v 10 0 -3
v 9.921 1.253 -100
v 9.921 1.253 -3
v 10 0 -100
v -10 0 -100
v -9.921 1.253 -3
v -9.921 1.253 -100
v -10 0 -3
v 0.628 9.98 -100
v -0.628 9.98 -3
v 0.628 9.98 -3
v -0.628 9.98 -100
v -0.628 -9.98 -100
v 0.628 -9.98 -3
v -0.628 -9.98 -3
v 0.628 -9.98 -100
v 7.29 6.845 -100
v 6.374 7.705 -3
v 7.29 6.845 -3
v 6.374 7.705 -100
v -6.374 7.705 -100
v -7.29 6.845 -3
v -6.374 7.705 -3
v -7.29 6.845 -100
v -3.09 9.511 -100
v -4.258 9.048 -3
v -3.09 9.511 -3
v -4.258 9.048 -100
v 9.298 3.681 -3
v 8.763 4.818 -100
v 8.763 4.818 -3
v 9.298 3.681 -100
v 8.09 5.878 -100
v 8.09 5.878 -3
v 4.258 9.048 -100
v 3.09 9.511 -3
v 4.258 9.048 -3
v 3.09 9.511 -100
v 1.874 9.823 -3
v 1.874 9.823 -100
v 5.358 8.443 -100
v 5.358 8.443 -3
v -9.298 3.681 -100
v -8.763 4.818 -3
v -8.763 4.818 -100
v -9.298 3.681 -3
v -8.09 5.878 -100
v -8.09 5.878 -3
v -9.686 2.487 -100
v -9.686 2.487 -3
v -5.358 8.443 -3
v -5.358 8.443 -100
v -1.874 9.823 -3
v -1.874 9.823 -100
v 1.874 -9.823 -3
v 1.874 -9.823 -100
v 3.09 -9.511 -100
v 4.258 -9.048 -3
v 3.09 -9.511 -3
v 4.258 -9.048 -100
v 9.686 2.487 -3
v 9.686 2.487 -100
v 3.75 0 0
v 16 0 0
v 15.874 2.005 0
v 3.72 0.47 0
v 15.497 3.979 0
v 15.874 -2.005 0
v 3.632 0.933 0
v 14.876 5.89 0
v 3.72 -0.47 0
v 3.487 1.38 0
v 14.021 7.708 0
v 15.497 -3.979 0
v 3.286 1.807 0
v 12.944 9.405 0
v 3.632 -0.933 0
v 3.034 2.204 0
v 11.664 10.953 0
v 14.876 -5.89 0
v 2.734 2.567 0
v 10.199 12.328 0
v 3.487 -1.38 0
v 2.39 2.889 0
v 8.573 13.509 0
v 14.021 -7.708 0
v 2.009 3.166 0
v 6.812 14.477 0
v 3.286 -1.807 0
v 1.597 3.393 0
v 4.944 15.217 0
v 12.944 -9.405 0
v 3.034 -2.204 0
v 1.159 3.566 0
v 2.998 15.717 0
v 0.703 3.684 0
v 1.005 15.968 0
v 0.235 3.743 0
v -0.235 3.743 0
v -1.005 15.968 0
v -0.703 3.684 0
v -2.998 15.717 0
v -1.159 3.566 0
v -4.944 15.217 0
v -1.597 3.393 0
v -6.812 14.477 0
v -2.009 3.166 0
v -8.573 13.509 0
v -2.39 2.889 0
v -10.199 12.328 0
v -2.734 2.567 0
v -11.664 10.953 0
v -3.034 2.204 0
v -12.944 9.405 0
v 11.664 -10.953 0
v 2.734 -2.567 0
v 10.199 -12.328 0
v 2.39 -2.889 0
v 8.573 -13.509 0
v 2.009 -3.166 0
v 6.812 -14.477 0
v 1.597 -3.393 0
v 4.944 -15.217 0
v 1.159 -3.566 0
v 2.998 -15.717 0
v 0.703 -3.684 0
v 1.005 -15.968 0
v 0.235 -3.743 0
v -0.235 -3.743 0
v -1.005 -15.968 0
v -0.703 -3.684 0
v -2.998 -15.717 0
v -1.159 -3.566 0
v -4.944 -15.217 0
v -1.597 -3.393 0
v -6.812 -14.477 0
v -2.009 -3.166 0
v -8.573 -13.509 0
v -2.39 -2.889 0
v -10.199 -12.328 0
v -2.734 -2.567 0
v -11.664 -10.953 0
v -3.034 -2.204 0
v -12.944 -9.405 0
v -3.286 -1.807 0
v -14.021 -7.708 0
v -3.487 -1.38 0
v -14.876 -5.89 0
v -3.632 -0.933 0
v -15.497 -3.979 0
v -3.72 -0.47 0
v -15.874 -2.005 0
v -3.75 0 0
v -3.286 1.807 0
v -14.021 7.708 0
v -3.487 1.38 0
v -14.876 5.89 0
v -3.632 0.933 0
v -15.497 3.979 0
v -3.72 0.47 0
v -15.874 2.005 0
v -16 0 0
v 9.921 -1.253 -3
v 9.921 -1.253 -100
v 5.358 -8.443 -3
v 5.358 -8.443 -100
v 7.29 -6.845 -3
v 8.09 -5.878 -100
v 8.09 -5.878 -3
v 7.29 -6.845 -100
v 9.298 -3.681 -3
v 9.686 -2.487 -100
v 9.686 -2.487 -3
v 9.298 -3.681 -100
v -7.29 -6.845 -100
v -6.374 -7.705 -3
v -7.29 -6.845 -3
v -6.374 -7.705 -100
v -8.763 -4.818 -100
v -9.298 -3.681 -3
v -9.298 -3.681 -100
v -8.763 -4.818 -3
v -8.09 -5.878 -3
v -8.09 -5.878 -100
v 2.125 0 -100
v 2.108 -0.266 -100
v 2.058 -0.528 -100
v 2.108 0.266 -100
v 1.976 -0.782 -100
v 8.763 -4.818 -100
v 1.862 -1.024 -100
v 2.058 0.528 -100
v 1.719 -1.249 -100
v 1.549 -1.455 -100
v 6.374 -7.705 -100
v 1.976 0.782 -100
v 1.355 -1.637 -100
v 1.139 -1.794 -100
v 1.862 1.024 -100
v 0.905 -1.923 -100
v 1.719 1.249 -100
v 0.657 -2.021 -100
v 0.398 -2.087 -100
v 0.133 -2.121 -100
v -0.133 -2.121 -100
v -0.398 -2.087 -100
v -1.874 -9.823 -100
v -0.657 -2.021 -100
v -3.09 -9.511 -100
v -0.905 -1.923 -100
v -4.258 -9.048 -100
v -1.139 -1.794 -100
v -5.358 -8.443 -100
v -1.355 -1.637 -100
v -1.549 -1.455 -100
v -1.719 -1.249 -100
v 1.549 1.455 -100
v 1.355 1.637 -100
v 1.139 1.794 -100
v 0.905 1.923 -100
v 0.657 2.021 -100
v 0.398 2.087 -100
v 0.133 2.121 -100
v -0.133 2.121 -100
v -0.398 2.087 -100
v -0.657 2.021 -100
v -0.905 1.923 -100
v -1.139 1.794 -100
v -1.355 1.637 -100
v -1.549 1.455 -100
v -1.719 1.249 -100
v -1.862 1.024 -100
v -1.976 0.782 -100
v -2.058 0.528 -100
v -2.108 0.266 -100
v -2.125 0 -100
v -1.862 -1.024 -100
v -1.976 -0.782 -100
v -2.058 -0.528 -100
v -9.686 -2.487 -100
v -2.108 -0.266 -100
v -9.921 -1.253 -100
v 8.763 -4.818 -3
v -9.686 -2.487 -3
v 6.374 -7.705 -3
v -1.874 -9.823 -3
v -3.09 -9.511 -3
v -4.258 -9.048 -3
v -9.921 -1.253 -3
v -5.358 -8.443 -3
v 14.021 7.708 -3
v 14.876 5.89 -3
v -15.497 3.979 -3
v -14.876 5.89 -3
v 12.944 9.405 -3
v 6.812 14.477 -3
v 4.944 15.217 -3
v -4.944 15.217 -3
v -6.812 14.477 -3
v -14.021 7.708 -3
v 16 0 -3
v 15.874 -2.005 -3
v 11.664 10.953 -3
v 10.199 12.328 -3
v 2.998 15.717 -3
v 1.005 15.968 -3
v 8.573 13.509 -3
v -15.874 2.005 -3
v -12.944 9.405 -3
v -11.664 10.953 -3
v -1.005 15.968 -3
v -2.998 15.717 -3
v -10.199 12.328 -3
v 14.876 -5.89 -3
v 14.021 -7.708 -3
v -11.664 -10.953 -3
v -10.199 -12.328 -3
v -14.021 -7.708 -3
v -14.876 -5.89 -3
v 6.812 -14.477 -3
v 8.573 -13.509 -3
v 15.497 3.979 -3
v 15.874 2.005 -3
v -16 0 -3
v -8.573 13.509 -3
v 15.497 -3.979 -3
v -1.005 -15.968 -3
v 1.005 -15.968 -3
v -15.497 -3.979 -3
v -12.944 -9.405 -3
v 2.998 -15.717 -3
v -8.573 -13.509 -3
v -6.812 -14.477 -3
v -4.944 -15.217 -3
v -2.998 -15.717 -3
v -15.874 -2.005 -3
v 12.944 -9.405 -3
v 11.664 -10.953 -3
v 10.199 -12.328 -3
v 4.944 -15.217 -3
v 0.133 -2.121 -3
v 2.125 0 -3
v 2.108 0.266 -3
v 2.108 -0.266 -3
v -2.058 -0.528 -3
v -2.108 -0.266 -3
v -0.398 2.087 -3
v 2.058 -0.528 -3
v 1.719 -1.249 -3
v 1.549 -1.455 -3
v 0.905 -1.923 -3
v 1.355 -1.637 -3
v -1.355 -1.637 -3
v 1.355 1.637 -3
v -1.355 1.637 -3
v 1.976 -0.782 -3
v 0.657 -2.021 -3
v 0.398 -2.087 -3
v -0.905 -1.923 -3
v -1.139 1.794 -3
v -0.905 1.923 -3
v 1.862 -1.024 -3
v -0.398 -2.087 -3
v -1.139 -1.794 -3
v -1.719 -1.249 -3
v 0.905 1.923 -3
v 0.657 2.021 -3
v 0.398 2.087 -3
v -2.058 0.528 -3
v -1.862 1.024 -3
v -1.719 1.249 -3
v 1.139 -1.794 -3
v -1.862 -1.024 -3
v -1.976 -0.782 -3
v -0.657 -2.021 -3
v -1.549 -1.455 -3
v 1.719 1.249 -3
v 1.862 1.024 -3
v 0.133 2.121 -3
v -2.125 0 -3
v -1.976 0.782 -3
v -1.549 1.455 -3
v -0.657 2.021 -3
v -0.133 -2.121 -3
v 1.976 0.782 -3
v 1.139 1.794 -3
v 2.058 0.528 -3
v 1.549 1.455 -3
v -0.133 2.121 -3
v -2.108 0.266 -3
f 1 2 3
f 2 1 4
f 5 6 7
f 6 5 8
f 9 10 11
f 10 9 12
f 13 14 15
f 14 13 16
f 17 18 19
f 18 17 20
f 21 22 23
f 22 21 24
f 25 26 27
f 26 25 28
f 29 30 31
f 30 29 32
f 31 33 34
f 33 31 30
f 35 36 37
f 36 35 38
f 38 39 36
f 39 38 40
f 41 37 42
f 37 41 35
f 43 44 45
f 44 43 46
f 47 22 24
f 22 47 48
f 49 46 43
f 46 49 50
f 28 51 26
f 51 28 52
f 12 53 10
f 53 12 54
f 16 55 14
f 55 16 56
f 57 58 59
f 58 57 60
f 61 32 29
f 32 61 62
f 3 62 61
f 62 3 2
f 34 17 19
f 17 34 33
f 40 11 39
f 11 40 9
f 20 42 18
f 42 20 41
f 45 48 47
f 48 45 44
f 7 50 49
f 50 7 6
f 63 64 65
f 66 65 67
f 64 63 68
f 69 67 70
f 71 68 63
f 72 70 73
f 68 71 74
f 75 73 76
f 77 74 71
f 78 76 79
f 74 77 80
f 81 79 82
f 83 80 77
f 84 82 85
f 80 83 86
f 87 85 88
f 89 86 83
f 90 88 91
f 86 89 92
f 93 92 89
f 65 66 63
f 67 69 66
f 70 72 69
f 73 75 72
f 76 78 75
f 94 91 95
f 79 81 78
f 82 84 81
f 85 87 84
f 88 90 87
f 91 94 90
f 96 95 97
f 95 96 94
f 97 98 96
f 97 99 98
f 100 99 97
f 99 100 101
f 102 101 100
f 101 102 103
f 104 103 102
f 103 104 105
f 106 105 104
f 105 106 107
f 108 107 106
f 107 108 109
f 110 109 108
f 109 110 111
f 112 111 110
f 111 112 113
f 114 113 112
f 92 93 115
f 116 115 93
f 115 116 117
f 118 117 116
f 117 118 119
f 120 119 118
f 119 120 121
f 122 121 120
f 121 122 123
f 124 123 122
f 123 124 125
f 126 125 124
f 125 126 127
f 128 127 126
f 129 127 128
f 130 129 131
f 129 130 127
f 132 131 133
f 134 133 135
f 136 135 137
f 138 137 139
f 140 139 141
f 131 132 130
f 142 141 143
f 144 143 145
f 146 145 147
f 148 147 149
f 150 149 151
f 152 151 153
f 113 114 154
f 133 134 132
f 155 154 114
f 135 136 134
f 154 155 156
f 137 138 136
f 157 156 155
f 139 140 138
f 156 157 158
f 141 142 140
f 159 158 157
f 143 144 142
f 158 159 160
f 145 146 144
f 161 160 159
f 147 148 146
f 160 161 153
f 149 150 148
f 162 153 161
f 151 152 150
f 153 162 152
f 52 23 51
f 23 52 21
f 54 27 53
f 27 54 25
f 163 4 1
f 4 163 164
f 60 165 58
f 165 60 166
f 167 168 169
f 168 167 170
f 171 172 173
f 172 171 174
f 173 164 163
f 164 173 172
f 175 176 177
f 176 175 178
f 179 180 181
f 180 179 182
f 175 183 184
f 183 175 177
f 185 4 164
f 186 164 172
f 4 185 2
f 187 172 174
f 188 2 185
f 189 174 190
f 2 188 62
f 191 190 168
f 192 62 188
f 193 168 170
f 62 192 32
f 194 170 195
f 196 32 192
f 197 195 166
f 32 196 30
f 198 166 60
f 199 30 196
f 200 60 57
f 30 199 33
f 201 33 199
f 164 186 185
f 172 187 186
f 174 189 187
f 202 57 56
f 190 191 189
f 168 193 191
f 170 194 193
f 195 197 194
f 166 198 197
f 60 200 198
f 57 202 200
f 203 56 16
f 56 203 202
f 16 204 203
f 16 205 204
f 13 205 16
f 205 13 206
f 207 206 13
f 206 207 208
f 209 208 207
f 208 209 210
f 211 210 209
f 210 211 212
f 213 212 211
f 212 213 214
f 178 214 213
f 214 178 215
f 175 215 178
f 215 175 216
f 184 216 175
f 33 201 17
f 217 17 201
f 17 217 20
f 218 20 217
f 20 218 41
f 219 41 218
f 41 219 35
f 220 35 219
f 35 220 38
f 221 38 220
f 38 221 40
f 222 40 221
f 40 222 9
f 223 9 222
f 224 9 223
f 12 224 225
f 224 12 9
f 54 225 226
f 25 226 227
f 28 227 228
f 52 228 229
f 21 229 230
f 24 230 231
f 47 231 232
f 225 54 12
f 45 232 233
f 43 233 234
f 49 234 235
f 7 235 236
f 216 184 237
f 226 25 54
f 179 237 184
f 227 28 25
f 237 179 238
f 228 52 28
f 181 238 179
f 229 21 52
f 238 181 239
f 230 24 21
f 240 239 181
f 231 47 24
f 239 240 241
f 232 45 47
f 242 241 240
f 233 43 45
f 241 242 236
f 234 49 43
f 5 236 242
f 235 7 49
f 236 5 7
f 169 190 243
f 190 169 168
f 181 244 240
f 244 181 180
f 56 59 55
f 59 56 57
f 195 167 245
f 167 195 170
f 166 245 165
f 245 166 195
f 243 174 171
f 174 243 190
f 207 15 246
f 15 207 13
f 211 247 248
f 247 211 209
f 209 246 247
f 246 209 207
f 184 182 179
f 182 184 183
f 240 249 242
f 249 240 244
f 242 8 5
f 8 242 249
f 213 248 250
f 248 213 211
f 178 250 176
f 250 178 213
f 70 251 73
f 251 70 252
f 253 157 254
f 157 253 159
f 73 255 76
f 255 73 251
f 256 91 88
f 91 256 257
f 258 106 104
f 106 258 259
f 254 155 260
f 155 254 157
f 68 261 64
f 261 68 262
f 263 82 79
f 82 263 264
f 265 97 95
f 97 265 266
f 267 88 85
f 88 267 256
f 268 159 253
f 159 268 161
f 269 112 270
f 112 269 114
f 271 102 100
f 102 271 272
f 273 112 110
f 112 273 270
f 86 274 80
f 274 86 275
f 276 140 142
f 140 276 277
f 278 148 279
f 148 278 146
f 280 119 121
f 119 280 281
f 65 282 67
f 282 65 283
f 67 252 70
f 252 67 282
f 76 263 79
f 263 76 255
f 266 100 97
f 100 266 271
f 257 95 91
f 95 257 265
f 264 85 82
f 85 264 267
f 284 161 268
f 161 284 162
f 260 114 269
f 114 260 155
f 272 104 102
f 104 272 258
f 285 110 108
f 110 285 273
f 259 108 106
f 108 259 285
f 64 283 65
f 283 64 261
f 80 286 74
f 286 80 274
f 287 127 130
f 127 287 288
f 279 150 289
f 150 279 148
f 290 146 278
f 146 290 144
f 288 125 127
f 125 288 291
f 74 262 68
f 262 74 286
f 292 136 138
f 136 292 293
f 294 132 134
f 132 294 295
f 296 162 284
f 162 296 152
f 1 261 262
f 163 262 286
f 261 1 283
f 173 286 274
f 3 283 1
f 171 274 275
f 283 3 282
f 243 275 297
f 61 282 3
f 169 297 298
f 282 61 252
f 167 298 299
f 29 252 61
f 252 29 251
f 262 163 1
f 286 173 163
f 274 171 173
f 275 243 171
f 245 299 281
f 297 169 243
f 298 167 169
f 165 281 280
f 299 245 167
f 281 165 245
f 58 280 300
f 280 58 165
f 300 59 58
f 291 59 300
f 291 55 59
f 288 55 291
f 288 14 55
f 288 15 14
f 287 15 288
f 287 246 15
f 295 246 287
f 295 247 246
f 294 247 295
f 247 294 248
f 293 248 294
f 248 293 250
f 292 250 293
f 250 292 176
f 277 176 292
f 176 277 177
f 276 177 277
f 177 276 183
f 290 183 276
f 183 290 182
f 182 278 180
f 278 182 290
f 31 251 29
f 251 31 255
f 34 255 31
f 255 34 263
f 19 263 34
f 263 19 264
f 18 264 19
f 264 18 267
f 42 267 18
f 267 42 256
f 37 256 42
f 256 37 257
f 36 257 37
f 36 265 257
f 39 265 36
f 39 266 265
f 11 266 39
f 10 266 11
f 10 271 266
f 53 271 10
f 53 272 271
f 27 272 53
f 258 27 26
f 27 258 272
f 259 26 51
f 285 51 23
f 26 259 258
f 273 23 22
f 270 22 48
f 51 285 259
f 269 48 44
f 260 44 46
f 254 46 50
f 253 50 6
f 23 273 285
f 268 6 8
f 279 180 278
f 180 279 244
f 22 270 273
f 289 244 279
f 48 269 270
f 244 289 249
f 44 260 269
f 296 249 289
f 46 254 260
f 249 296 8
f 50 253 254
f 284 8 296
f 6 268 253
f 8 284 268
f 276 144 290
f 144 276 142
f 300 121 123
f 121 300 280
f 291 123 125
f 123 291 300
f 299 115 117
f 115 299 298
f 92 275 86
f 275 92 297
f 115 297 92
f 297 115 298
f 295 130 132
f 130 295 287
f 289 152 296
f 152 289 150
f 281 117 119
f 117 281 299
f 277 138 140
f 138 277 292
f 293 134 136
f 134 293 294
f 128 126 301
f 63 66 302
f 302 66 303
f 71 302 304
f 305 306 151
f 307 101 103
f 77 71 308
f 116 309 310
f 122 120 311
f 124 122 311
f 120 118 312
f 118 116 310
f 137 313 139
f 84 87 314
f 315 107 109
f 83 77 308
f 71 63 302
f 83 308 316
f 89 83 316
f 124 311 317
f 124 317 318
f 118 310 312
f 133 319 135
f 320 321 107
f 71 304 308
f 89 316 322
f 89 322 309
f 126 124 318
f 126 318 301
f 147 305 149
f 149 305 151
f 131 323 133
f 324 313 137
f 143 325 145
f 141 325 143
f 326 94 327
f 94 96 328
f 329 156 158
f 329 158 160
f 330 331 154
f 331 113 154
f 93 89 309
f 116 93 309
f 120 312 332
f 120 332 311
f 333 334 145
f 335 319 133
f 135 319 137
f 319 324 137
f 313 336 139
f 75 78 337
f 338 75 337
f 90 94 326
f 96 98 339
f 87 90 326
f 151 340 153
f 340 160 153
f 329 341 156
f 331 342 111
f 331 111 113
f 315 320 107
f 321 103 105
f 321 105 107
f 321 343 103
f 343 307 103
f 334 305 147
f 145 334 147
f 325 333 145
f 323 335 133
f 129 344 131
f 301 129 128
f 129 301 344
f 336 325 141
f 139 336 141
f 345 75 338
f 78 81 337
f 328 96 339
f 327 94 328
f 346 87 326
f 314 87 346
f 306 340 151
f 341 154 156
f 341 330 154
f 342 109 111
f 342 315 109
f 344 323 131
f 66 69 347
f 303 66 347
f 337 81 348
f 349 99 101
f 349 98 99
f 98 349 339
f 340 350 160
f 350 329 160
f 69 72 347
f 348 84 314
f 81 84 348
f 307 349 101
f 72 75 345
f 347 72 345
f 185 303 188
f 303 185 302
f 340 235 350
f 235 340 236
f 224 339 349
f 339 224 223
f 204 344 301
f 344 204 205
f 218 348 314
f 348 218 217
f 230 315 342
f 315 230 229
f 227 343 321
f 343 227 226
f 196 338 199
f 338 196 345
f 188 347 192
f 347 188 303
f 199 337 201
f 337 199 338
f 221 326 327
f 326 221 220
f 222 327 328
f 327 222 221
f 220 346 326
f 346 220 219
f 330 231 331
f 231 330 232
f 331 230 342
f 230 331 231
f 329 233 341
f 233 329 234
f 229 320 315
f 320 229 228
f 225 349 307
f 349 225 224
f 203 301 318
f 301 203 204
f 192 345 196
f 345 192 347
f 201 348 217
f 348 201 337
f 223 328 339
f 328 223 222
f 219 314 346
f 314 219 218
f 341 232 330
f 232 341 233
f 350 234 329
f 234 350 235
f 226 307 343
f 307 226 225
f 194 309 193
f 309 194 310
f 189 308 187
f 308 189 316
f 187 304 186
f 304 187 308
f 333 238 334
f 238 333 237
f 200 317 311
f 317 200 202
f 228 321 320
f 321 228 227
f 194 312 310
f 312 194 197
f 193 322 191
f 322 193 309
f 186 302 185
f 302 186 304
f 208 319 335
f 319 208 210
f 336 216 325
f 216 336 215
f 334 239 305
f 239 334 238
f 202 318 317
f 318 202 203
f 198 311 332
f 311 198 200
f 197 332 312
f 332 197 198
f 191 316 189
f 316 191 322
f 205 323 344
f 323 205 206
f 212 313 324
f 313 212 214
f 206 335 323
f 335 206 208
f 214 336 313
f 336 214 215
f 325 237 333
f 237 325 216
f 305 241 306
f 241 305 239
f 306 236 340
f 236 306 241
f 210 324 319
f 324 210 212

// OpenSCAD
$fn = 50;


difference() {
	union() {
		translate(v = [0, 0, -100.0000000000]) {
			cylinder(h = 100, r = 10.0000000000);
		}
		translate(v = [0, 0, -3.0000000000]) {
			cylinder(h = 3, r = 16.0000000000);
		}
	}
	union() {
		translate(v = [0, 0, 0]) {
			rotate(a = [0, 0, 0]) {
				difference() {
					union() {
						#translate(v = [0, 0, -100.0000000000]) {
							cylinder(h = 100, r = 2.0000000000);
						}
						#translate(v = [0, 0, -3]) {
							cylinder(h = 3, r1 = 2.1250000000, r2 = 3.7500000000);
						}
						#translate(v = [0, 0, -100.0000000000]) {
							cylinder(h = 100, r = 2.1250000000);
						}
						#translate(v = [0, 0, -100.0000000000]) {
							cylinder(h = 100, r = 2.0000000000);
						}
					}
					union();
				}
			}
		}
	}
}
